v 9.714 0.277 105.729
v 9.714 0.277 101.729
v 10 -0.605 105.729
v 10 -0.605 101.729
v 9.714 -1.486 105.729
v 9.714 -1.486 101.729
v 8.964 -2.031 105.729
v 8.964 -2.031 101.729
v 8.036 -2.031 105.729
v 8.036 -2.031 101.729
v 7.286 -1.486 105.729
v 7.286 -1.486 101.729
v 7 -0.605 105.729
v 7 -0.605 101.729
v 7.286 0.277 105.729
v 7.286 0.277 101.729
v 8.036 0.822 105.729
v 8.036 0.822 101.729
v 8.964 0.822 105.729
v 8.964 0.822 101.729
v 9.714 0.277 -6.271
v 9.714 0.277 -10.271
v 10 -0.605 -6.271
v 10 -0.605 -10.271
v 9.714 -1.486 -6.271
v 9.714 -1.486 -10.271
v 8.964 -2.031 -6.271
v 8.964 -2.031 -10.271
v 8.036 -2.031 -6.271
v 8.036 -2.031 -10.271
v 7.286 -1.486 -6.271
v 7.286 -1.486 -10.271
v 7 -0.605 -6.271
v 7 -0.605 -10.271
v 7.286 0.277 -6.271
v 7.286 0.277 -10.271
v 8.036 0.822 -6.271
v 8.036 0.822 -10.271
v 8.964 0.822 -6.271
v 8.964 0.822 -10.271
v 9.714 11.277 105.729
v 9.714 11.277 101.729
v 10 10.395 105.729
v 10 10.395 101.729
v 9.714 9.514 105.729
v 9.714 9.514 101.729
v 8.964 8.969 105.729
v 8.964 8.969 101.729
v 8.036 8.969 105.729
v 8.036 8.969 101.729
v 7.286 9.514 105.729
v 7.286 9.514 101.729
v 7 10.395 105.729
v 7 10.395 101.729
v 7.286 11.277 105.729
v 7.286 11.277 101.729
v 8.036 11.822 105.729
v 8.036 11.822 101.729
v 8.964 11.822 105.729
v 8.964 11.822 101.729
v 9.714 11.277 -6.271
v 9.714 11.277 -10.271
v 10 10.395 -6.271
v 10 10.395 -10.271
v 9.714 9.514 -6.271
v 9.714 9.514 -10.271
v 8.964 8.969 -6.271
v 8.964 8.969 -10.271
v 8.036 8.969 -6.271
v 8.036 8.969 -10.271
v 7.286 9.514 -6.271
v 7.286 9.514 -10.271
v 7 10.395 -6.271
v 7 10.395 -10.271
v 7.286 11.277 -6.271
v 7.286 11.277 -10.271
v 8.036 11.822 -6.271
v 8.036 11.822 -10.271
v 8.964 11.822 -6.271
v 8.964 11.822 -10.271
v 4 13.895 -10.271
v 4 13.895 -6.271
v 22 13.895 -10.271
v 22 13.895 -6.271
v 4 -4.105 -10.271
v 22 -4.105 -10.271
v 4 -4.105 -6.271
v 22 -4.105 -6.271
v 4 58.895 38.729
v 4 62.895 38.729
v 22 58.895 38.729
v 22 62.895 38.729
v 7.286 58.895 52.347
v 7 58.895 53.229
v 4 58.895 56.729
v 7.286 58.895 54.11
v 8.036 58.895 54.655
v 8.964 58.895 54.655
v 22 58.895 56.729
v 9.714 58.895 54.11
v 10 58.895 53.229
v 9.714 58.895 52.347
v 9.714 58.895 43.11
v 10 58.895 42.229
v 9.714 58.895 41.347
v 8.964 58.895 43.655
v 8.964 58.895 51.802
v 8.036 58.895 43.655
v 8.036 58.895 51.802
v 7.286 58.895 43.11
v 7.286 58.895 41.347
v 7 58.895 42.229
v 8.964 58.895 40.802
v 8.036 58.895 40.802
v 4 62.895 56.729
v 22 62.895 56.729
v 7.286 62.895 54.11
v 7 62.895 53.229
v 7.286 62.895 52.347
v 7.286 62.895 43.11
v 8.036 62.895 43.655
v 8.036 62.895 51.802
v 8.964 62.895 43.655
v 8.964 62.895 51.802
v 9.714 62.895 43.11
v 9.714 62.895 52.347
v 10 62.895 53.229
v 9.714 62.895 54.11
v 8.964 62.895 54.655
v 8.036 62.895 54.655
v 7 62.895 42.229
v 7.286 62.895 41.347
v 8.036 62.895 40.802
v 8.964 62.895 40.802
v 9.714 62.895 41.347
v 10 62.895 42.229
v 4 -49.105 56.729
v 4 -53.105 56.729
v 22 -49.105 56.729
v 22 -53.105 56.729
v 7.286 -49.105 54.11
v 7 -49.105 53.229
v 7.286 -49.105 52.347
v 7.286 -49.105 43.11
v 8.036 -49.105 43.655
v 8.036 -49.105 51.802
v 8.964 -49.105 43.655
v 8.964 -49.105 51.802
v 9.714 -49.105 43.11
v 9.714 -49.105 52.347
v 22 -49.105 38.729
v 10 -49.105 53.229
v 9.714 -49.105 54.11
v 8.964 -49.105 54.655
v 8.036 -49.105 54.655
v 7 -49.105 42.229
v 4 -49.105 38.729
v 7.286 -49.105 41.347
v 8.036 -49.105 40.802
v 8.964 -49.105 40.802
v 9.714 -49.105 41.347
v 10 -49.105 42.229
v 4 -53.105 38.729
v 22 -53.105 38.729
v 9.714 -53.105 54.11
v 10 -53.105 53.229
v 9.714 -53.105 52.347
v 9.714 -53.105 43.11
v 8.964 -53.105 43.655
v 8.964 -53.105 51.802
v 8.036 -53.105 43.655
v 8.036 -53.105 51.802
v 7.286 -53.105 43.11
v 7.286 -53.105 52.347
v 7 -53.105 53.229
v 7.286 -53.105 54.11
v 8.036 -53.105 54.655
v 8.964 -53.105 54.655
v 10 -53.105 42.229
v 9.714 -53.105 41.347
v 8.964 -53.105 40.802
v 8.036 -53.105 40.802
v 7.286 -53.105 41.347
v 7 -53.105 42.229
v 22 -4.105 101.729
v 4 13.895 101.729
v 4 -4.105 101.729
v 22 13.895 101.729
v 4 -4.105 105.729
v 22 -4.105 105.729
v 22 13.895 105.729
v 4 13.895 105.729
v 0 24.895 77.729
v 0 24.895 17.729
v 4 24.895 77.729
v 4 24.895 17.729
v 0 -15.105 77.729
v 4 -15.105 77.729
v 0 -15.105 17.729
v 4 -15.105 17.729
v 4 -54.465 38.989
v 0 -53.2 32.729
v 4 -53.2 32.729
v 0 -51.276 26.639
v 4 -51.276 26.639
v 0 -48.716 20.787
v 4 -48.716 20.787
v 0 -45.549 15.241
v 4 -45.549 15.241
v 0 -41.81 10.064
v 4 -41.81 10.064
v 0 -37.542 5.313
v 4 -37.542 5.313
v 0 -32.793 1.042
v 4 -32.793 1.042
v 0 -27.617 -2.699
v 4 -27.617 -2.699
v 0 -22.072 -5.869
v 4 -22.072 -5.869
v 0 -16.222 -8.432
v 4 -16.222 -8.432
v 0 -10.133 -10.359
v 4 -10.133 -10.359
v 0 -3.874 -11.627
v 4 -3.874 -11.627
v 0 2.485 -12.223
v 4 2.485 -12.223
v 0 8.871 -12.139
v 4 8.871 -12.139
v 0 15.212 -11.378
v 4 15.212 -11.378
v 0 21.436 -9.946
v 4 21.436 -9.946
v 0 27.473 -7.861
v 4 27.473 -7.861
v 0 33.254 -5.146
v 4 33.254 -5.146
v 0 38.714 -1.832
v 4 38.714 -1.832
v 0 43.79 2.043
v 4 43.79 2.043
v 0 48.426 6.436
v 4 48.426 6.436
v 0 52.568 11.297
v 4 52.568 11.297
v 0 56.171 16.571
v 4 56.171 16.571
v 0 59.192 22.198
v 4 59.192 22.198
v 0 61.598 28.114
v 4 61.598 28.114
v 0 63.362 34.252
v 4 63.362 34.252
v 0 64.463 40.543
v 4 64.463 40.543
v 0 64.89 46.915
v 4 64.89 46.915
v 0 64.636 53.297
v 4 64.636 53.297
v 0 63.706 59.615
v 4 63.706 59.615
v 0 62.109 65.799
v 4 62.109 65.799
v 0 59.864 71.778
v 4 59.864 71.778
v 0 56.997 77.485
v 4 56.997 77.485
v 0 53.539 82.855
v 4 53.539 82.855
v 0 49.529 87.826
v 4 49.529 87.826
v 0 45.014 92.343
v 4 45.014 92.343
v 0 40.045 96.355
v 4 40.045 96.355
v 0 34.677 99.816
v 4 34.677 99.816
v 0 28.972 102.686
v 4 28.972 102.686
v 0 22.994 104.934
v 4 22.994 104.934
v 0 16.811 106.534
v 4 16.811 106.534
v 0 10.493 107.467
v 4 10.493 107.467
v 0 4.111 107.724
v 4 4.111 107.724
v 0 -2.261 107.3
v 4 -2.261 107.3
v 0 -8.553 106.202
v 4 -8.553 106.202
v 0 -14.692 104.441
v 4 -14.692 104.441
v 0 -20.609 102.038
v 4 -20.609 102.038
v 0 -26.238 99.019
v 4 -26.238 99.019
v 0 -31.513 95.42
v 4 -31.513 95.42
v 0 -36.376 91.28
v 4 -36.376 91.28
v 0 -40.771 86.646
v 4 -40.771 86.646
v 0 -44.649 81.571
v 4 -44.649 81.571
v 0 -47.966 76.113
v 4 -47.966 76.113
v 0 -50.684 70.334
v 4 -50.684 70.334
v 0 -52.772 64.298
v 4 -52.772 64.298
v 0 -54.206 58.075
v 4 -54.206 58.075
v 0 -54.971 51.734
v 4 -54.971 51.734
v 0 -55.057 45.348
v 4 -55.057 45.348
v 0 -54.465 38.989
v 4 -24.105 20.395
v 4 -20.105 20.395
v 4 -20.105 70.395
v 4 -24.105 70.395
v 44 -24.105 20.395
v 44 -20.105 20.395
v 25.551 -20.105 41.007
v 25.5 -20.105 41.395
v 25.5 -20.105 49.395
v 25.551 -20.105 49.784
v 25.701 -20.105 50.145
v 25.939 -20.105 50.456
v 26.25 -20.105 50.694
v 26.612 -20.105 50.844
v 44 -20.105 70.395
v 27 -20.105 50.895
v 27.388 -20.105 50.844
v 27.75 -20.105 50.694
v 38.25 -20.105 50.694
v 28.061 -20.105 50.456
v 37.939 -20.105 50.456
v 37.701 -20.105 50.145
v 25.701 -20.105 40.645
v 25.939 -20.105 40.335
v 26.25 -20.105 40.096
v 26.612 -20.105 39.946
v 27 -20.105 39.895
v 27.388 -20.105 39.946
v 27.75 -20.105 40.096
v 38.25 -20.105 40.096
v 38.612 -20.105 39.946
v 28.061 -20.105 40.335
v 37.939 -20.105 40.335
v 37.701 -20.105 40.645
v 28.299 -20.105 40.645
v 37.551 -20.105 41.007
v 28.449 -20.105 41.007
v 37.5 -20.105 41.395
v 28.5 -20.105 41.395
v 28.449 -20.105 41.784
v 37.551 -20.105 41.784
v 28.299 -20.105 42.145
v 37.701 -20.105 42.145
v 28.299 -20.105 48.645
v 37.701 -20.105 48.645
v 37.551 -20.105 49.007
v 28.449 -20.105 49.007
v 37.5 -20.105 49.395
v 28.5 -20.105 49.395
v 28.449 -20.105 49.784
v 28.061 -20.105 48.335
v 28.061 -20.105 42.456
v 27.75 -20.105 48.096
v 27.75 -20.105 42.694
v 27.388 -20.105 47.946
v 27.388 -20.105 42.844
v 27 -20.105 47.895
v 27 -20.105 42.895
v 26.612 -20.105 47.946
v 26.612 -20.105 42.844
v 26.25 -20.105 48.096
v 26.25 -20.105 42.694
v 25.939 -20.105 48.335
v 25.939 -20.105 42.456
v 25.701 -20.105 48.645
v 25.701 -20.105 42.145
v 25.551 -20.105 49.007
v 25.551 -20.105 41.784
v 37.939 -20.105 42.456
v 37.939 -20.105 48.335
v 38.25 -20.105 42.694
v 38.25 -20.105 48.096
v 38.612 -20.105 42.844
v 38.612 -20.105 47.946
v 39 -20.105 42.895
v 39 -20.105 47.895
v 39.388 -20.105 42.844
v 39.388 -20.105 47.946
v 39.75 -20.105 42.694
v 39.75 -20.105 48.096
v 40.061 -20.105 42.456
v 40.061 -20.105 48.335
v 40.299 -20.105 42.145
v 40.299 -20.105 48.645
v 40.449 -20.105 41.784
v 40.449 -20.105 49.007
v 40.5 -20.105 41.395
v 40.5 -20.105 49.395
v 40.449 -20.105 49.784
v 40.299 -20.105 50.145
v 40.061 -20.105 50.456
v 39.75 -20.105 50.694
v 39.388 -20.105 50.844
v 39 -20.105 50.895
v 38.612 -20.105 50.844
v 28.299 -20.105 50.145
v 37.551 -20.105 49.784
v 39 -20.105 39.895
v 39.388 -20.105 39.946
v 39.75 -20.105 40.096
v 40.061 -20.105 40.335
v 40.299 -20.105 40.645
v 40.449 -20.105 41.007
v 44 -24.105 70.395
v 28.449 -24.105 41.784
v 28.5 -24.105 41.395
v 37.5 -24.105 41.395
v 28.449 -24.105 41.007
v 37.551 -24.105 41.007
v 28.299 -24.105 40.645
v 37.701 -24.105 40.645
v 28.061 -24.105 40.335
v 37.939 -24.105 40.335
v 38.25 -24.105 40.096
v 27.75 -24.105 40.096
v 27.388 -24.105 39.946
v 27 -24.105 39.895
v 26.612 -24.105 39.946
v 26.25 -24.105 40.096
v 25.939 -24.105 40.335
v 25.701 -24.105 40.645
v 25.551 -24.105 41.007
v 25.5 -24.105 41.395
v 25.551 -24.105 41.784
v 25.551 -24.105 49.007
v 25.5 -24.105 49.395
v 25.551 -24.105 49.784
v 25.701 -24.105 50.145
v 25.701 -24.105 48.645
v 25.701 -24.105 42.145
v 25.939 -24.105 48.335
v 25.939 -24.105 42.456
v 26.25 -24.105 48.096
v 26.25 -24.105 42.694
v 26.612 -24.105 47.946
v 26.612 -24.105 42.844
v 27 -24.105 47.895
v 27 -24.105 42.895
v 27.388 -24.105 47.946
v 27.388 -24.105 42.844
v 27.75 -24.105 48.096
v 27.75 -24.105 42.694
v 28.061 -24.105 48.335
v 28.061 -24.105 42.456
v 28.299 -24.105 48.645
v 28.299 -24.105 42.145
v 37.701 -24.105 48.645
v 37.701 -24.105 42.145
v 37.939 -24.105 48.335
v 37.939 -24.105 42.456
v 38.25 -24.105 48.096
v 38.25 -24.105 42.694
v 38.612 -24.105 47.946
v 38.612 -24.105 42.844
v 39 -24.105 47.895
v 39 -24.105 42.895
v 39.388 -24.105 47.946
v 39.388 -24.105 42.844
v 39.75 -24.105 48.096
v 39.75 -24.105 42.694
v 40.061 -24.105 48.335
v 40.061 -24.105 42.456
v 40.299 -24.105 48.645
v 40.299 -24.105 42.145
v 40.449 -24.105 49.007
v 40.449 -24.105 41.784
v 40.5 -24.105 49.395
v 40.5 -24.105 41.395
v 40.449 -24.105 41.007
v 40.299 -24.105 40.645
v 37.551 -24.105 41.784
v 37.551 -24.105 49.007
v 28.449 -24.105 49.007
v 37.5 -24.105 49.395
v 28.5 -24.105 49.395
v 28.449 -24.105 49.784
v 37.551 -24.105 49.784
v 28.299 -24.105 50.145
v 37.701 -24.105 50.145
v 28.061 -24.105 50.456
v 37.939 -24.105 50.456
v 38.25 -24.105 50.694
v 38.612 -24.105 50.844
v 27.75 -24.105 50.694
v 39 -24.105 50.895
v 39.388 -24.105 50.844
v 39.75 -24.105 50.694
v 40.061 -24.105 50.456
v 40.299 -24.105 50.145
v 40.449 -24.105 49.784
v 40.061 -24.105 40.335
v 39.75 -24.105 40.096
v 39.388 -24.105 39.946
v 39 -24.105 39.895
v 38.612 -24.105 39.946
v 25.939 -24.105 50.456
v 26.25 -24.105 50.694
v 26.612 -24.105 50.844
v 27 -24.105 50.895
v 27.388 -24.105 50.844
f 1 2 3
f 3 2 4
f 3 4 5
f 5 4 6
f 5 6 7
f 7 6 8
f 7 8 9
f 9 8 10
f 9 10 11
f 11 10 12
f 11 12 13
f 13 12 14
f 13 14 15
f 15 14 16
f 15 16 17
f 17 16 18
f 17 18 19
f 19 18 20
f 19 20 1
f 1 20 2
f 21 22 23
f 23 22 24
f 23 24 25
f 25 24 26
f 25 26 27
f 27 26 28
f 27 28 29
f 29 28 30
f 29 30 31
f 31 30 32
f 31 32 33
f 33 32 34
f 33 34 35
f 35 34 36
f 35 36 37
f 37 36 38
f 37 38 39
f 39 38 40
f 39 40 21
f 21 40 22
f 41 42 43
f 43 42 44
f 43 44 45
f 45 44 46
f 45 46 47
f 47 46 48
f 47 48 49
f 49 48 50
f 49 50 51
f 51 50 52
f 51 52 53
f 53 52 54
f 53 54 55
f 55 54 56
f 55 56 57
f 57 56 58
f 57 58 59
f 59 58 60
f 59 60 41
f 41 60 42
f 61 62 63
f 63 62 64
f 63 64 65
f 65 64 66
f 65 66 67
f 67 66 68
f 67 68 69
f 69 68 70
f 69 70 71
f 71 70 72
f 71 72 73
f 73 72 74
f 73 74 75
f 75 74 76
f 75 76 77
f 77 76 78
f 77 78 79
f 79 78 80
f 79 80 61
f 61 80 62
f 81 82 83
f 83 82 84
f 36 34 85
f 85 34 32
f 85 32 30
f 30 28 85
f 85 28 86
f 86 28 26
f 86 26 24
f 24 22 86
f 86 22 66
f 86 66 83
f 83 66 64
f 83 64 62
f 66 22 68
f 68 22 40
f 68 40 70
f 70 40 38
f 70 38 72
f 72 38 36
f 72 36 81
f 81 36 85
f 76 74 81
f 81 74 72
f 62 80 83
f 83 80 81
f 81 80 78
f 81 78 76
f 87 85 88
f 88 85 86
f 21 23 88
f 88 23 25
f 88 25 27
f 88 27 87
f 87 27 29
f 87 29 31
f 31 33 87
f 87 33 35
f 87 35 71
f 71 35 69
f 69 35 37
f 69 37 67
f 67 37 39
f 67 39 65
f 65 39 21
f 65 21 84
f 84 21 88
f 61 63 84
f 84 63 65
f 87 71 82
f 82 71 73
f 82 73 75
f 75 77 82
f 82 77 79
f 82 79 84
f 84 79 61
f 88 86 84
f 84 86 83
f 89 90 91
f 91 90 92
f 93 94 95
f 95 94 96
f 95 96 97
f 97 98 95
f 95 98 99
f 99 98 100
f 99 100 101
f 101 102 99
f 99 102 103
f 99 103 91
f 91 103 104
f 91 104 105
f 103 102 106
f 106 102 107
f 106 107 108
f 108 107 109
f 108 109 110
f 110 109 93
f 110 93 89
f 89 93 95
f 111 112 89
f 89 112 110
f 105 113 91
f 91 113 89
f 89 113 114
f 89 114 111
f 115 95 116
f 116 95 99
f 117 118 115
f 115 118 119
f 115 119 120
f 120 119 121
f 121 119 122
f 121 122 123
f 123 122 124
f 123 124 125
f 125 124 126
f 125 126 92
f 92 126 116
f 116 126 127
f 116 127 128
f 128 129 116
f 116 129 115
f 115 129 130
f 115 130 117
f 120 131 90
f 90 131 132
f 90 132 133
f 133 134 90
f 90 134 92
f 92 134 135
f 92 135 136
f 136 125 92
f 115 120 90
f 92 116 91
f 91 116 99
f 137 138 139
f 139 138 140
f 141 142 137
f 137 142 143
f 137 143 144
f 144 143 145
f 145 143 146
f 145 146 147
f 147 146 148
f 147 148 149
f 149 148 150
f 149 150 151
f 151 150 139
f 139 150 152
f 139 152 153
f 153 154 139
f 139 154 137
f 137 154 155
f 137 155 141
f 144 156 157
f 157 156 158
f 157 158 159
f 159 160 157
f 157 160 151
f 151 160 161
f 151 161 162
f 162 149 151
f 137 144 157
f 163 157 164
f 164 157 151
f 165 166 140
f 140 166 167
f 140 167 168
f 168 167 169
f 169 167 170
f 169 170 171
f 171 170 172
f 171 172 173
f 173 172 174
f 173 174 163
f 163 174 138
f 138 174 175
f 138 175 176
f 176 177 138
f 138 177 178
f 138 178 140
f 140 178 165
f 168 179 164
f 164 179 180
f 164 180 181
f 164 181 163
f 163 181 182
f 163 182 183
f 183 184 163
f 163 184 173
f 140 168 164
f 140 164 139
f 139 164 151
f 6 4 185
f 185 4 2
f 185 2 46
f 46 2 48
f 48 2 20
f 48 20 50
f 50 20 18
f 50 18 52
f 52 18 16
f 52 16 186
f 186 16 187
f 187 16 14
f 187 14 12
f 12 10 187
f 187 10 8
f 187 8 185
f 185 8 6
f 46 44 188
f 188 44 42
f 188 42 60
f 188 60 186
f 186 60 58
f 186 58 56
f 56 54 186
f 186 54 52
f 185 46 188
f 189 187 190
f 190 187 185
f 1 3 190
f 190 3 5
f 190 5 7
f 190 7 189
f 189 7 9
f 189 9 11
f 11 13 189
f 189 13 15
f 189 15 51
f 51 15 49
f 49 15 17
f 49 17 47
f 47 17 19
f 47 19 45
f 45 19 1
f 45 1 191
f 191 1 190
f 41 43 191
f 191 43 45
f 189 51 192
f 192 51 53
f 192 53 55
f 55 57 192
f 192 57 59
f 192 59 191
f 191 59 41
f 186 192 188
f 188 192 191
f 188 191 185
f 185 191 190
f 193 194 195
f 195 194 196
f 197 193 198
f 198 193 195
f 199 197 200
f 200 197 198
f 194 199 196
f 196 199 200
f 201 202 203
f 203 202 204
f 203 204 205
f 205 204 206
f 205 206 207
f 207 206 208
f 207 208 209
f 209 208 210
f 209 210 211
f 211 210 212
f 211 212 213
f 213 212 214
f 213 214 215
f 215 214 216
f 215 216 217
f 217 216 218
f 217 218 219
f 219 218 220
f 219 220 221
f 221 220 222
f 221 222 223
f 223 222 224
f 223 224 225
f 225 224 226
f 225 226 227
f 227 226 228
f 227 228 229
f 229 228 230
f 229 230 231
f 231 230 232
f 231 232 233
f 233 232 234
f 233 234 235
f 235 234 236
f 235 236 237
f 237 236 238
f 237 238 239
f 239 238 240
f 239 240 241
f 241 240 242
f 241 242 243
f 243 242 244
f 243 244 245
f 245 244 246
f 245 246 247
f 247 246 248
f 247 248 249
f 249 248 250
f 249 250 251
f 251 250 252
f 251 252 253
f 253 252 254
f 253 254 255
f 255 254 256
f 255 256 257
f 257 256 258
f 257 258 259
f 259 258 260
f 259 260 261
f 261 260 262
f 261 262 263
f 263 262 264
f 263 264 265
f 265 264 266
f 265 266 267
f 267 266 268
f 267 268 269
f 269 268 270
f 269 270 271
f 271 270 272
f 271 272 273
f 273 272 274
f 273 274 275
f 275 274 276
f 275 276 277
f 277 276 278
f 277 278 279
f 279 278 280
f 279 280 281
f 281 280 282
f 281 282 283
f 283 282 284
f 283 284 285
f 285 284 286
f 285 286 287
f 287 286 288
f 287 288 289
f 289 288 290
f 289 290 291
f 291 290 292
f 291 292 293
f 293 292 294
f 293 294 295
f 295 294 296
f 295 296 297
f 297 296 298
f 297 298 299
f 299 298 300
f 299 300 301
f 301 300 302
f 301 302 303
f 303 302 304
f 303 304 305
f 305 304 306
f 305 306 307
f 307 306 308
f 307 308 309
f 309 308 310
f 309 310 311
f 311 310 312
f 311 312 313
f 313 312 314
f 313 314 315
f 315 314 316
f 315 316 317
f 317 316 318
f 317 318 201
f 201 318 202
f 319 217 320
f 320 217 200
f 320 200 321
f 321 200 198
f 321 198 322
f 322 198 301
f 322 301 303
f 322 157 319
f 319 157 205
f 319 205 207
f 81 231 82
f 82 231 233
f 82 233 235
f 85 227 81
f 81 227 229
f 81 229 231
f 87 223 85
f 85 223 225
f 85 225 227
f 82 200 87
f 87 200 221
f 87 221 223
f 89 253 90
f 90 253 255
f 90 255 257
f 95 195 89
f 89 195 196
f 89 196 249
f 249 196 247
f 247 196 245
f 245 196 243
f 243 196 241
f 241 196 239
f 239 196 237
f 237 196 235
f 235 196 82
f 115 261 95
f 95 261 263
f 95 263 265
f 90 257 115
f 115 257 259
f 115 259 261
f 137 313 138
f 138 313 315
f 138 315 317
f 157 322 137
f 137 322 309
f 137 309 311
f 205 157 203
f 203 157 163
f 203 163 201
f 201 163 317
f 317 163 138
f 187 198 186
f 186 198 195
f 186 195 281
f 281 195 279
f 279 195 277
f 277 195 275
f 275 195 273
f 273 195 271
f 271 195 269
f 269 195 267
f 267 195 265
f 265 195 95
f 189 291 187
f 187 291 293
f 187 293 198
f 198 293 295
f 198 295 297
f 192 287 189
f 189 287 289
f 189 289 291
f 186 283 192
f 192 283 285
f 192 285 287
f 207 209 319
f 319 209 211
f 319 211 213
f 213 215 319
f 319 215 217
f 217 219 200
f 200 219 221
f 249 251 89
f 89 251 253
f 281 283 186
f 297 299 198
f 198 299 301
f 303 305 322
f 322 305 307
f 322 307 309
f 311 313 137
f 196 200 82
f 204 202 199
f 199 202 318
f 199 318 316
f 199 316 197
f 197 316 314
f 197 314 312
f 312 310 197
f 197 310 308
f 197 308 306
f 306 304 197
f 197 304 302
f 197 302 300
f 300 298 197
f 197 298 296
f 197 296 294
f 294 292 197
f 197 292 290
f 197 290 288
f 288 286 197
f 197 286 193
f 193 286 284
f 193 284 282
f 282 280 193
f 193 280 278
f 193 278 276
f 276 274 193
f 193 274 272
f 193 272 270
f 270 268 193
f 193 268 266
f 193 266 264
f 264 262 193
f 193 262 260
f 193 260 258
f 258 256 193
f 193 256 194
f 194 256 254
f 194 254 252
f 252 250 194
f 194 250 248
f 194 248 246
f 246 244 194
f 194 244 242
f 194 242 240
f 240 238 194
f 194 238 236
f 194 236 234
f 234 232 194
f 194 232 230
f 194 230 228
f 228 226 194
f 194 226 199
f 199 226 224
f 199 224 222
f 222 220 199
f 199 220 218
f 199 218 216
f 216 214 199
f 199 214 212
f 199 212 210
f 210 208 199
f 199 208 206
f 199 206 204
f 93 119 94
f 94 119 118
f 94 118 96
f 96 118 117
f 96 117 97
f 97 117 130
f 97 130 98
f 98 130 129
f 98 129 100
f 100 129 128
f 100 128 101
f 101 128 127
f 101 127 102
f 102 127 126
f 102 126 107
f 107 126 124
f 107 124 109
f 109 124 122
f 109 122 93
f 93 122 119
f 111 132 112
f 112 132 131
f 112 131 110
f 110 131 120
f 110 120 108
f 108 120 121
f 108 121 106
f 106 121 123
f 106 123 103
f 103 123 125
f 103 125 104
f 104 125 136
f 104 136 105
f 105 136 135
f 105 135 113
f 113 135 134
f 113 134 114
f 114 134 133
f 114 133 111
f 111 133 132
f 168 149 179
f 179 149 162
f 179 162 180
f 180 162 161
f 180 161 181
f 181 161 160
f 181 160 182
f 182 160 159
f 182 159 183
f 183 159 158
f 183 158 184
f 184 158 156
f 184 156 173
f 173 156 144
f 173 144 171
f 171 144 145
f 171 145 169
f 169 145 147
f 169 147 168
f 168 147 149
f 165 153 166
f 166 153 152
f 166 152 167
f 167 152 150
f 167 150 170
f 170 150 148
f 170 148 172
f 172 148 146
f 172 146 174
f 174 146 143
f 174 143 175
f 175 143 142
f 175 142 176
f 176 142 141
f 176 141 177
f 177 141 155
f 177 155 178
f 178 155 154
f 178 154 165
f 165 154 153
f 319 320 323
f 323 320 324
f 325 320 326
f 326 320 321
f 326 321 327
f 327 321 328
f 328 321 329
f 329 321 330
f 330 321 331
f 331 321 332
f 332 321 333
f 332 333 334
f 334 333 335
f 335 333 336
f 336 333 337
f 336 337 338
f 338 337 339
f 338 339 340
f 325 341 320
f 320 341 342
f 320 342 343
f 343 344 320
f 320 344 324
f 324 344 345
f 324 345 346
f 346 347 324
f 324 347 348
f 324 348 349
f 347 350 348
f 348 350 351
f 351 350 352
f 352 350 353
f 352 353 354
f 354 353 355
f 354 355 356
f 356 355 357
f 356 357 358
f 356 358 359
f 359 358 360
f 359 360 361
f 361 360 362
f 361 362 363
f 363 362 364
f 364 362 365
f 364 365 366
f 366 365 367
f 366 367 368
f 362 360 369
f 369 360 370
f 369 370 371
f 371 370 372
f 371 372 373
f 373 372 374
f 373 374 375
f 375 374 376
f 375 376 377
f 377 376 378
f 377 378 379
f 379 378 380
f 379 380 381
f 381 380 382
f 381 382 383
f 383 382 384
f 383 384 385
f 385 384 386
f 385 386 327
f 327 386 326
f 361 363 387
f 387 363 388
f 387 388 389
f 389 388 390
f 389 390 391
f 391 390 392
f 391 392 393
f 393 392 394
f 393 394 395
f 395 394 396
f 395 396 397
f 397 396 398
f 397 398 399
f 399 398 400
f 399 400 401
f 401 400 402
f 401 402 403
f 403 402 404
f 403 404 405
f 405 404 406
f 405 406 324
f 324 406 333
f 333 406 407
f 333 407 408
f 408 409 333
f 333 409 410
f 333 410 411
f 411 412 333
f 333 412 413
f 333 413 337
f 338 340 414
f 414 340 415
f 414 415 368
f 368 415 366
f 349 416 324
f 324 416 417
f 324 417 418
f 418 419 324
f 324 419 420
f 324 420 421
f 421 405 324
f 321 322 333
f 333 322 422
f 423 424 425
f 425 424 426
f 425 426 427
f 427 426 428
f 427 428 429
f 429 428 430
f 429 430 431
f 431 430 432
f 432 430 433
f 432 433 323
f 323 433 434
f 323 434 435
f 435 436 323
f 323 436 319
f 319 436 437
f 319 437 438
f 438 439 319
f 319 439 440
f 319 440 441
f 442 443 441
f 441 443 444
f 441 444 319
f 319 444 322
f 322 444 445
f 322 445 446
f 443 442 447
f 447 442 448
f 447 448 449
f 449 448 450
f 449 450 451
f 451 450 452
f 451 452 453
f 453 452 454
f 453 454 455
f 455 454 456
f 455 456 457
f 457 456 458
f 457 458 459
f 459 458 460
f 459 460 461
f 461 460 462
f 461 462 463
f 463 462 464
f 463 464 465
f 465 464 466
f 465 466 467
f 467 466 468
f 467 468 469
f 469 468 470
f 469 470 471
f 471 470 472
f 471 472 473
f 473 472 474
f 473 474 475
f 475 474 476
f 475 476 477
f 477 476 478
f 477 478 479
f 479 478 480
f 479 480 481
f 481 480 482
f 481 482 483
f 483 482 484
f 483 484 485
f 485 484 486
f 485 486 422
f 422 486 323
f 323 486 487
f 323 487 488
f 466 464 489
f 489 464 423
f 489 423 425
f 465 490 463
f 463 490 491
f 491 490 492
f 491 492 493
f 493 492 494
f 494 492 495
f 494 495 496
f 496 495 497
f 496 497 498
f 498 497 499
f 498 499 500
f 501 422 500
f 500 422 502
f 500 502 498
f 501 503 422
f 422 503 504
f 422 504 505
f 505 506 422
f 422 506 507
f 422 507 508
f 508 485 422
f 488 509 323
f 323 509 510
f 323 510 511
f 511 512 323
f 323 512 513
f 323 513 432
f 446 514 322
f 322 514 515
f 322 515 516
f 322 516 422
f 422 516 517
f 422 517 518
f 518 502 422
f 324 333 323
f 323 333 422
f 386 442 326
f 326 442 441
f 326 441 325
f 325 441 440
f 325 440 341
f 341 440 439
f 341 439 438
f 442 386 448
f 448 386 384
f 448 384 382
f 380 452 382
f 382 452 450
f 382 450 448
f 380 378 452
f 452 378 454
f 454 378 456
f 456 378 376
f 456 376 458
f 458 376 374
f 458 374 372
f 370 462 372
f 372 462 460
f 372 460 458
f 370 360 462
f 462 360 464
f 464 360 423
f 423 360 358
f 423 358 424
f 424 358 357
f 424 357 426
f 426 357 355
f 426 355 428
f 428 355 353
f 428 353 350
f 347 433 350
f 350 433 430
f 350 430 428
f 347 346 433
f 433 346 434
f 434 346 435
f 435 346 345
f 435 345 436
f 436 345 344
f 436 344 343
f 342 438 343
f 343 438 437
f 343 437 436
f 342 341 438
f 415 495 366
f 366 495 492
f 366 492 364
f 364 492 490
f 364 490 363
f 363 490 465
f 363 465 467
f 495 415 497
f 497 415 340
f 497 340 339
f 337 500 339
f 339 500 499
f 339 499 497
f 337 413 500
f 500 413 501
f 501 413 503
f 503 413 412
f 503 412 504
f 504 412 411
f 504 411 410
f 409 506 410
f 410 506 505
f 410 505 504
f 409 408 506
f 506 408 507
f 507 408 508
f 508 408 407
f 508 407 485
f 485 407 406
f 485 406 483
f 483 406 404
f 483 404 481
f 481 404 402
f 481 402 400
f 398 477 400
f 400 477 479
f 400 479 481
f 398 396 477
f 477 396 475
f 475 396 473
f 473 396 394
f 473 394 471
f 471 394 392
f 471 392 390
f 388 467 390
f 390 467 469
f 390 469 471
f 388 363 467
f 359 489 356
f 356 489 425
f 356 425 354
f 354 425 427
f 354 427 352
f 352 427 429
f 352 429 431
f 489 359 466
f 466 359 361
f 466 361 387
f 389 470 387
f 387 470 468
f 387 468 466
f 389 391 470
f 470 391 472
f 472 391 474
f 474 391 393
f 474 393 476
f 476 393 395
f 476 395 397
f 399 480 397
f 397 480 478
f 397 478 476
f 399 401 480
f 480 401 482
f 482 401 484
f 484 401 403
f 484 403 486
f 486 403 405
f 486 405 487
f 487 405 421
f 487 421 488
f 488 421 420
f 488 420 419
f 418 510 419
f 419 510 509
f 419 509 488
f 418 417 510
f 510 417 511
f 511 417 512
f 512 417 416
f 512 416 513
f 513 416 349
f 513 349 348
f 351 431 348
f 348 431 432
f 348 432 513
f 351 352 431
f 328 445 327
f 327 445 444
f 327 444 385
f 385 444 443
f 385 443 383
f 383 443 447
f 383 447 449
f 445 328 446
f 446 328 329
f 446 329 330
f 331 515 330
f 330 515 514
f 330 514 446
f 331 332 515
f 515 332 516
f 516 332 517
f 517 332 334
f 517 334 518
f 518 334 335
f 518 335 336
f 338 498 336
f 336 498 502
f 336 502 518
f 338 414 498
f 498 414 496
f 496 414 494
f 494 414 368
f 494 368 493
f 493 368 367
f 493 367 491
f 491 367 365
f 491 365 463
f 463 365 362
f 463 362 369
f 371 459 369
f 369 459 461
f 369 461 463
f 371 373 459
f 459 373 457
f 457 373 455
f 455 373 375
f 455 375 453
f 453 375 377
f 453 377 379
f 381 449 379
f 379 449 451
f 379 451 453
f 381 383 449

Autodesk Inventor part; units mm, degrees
ref_plane "YZ Plane" through (0, 0, 0) normal (1, 0, 0) x (0, 1, 0)
ref_plane "XZ Plane" through (0, 0, 0) normal (0, 1, 0) x (-1, 0, 0)
ref_plane "XY Plane" through (0, 0, 0) normal (0, 0, 1) x (1, 0, 0)
sketch "草图2" plane through (0, 0, 0) normal (1, 0, 0) x (0, 1, 0)
  arc A0 (-53.1995, 32.7287) -> (-53.1995, 62.7287) centre (4.8952, 47.7287) ccw
  line L0 (4.8952, 17.7287) -> (24.8952, 17.7287)
  line L1 (24.8952, 17.7287) -> (24.8952, 77.7287)
  line L2 (24.8952, 77.7287) -> (-15.1048, 77.7287)
  line L3 (-15.1048, 77.7287) -> (-15.1048, 17.7287)
  line L4 (-15.1048, 17.7287) -> (4.8952, 17.7287)
  arc A1 (-53.1995, 62.7287) -> (-53.1995, 32.7287) centre (4.8952, 47.7287) ccw
  point P0 (0, 0)
extrude "拉伸2" add sketch "草图2" along normal blind 4
sketch "草图3" plane through (4, 4.8952, 47.7287) normal (1, 0, 0) x (0, 0, -1)
  line L0 (-9, 58) -> (9, 58)
  line L1 (9, 58) -> (9, 54)
  line L2 (9, 54) -> (-9, 54)
  line L3 (-9, 54) -> (-9, 58)
  line L4 (0, -74) -> (0, 175)
  line L5 (0, 0) -> (111.1859, 0)
  line L6 (-9, -58) -> (9, -58)
  line L7 (9, -58) -> (9, -54)
  line L8 (9, -54) -> (-9, -54)
  line L9 (-9, -54) -> (-9, -58)
  line L10 (54, 9) -> (58, 9)
  line L11 (58, 9) -> (58, -9)
  line L12 (58, -9) -> (54, -9)
  line L13 (54, -9) -> (54, 9)
  line L14 (-54, 9) -> (-58, 9)
  line L15 (-58, 9) -> (-58, -9)
  line L16 (-58, -9) -> (-54, -9)
  line L17 (-54, -9) -> (-54, 9)
  dimension "d21" = 18
  dimension "d22" = 4
  dimension "d23" = 18
  dimension "d24" = 4
  dimension "d25" = 108
  dimension "d26" = 108
extrude "拉伸3" add sketch "草图3" along normal blind 18
sketch "草图4" plane through (4, -4.1048, -10.2713) normal (0, 0, -1) x (-1, 0, 0)
  line L0 (-4.5, 27) -> (-4.5, -16)
  line L1 (0, 69) -> (0, -51) projected
  line L2 (0, 0) -> (-18, 0) projected
  line L3 (0, 18) -> (-18, 18) projected
  line L4 (2.402, 9) -> (-9.4185, 9) construction
  circle A0 centre (-4.5, 14.5) radius 1.5
  circle A1 centre (-4.5, 3.5) radius 1.5
  point P0 (4, 4.1048)
  point P1 (-2.25, 9)
  dimension "d29" = 4.5
  dimension "d30" = 3
  dimension "d31" = 11
extrude "拉伸4" cut sketch "草图4" against normal blind 200 contours A0 L0 | L0 A0 | A1 L0 | L0 A1
sketch "草图6" plane through (4, -53.1048, 38.7287) normal (0, -1, 0) x (1, 0, 0)
  line L0 (4.5, -6) -> (4.5, 26.379)
  line L1 (0, -51) -> (0, 69) projected
  line L2 (0, 18) -> (18, 18) projected
  line L3 (-1.6886, 9) -> (9.3114, 9) construction
  circle A0 centre (4.5, 3.5) radius 1.5
  circle A1 centre (4.5, 14.5) radius 1.5
  point P0 (-4, -38.7287)
  point P1 (2.25, 9)
  dimension "d34" = 4.5
  dimension "d35" = 3
  dimension "d36" = 11
extrude "拉伸5" cut sketch "草图6" against normal blind 200
sketch "草图7" plane through (4, 4.8952, 47.7287) normal (1, 0, 0) x (0, 0, -1)
  line L0 (-22.6667, -29) -> (27.3333, -29)
  line L1 (27.3333, -29) -> (27.3333, -25)
  line L2 (27.3333, -25) -> (-22.6667, -25)
  line L3 (-22.6667, -25) -> (-22.6667, -29)
  line L4 (30, -20) -> (-30, -20) projected
  line L5 (0, -20) -> (0, -25)
  point P0 (47.7287, -4.8952)
  dimension "d39" = 4
  dimension "d40" = 50
  dimension "d41" = 5
extrude "拉伸6" add sketch "草图7" along normal blind 40
sketch "草图8" plane through (4, -24.1048, 20.3953) normal (0, -1, 0) x (1, 0, 0)
  line L0 (40, 0) -> (40, 50) projected
  line L1 (40, 50) -> (40, 25)
  line L2 (40, 25) -> (35, 25)
  line L3 (35, 25) -> (35, 21)
  line L4 (35, 25) -> (35, 29)
  line L5 (35, 25) -> (23, 25)
  line L6 (23, 25) -> (23, 21)
  line L7 (23, 25) -> (23, 29)
  circle A0 centre (35, 21) radius 1.5
  circle A1 centre (35, 29) radius 1.5
  circle A2 centre (23, 29) radius 1.5
  circle A3 centre (23, 21) radius 1.5
  point P0 (-4, -20.3953)
  dimension "d44" = 5
  dimension "d46" = 4
  dimension "d50" = 3
  dimension "d51" = 3
  dimension "d52" = 3
extrude "拉伸7" cut sketch "草图8" against normal blind 40
